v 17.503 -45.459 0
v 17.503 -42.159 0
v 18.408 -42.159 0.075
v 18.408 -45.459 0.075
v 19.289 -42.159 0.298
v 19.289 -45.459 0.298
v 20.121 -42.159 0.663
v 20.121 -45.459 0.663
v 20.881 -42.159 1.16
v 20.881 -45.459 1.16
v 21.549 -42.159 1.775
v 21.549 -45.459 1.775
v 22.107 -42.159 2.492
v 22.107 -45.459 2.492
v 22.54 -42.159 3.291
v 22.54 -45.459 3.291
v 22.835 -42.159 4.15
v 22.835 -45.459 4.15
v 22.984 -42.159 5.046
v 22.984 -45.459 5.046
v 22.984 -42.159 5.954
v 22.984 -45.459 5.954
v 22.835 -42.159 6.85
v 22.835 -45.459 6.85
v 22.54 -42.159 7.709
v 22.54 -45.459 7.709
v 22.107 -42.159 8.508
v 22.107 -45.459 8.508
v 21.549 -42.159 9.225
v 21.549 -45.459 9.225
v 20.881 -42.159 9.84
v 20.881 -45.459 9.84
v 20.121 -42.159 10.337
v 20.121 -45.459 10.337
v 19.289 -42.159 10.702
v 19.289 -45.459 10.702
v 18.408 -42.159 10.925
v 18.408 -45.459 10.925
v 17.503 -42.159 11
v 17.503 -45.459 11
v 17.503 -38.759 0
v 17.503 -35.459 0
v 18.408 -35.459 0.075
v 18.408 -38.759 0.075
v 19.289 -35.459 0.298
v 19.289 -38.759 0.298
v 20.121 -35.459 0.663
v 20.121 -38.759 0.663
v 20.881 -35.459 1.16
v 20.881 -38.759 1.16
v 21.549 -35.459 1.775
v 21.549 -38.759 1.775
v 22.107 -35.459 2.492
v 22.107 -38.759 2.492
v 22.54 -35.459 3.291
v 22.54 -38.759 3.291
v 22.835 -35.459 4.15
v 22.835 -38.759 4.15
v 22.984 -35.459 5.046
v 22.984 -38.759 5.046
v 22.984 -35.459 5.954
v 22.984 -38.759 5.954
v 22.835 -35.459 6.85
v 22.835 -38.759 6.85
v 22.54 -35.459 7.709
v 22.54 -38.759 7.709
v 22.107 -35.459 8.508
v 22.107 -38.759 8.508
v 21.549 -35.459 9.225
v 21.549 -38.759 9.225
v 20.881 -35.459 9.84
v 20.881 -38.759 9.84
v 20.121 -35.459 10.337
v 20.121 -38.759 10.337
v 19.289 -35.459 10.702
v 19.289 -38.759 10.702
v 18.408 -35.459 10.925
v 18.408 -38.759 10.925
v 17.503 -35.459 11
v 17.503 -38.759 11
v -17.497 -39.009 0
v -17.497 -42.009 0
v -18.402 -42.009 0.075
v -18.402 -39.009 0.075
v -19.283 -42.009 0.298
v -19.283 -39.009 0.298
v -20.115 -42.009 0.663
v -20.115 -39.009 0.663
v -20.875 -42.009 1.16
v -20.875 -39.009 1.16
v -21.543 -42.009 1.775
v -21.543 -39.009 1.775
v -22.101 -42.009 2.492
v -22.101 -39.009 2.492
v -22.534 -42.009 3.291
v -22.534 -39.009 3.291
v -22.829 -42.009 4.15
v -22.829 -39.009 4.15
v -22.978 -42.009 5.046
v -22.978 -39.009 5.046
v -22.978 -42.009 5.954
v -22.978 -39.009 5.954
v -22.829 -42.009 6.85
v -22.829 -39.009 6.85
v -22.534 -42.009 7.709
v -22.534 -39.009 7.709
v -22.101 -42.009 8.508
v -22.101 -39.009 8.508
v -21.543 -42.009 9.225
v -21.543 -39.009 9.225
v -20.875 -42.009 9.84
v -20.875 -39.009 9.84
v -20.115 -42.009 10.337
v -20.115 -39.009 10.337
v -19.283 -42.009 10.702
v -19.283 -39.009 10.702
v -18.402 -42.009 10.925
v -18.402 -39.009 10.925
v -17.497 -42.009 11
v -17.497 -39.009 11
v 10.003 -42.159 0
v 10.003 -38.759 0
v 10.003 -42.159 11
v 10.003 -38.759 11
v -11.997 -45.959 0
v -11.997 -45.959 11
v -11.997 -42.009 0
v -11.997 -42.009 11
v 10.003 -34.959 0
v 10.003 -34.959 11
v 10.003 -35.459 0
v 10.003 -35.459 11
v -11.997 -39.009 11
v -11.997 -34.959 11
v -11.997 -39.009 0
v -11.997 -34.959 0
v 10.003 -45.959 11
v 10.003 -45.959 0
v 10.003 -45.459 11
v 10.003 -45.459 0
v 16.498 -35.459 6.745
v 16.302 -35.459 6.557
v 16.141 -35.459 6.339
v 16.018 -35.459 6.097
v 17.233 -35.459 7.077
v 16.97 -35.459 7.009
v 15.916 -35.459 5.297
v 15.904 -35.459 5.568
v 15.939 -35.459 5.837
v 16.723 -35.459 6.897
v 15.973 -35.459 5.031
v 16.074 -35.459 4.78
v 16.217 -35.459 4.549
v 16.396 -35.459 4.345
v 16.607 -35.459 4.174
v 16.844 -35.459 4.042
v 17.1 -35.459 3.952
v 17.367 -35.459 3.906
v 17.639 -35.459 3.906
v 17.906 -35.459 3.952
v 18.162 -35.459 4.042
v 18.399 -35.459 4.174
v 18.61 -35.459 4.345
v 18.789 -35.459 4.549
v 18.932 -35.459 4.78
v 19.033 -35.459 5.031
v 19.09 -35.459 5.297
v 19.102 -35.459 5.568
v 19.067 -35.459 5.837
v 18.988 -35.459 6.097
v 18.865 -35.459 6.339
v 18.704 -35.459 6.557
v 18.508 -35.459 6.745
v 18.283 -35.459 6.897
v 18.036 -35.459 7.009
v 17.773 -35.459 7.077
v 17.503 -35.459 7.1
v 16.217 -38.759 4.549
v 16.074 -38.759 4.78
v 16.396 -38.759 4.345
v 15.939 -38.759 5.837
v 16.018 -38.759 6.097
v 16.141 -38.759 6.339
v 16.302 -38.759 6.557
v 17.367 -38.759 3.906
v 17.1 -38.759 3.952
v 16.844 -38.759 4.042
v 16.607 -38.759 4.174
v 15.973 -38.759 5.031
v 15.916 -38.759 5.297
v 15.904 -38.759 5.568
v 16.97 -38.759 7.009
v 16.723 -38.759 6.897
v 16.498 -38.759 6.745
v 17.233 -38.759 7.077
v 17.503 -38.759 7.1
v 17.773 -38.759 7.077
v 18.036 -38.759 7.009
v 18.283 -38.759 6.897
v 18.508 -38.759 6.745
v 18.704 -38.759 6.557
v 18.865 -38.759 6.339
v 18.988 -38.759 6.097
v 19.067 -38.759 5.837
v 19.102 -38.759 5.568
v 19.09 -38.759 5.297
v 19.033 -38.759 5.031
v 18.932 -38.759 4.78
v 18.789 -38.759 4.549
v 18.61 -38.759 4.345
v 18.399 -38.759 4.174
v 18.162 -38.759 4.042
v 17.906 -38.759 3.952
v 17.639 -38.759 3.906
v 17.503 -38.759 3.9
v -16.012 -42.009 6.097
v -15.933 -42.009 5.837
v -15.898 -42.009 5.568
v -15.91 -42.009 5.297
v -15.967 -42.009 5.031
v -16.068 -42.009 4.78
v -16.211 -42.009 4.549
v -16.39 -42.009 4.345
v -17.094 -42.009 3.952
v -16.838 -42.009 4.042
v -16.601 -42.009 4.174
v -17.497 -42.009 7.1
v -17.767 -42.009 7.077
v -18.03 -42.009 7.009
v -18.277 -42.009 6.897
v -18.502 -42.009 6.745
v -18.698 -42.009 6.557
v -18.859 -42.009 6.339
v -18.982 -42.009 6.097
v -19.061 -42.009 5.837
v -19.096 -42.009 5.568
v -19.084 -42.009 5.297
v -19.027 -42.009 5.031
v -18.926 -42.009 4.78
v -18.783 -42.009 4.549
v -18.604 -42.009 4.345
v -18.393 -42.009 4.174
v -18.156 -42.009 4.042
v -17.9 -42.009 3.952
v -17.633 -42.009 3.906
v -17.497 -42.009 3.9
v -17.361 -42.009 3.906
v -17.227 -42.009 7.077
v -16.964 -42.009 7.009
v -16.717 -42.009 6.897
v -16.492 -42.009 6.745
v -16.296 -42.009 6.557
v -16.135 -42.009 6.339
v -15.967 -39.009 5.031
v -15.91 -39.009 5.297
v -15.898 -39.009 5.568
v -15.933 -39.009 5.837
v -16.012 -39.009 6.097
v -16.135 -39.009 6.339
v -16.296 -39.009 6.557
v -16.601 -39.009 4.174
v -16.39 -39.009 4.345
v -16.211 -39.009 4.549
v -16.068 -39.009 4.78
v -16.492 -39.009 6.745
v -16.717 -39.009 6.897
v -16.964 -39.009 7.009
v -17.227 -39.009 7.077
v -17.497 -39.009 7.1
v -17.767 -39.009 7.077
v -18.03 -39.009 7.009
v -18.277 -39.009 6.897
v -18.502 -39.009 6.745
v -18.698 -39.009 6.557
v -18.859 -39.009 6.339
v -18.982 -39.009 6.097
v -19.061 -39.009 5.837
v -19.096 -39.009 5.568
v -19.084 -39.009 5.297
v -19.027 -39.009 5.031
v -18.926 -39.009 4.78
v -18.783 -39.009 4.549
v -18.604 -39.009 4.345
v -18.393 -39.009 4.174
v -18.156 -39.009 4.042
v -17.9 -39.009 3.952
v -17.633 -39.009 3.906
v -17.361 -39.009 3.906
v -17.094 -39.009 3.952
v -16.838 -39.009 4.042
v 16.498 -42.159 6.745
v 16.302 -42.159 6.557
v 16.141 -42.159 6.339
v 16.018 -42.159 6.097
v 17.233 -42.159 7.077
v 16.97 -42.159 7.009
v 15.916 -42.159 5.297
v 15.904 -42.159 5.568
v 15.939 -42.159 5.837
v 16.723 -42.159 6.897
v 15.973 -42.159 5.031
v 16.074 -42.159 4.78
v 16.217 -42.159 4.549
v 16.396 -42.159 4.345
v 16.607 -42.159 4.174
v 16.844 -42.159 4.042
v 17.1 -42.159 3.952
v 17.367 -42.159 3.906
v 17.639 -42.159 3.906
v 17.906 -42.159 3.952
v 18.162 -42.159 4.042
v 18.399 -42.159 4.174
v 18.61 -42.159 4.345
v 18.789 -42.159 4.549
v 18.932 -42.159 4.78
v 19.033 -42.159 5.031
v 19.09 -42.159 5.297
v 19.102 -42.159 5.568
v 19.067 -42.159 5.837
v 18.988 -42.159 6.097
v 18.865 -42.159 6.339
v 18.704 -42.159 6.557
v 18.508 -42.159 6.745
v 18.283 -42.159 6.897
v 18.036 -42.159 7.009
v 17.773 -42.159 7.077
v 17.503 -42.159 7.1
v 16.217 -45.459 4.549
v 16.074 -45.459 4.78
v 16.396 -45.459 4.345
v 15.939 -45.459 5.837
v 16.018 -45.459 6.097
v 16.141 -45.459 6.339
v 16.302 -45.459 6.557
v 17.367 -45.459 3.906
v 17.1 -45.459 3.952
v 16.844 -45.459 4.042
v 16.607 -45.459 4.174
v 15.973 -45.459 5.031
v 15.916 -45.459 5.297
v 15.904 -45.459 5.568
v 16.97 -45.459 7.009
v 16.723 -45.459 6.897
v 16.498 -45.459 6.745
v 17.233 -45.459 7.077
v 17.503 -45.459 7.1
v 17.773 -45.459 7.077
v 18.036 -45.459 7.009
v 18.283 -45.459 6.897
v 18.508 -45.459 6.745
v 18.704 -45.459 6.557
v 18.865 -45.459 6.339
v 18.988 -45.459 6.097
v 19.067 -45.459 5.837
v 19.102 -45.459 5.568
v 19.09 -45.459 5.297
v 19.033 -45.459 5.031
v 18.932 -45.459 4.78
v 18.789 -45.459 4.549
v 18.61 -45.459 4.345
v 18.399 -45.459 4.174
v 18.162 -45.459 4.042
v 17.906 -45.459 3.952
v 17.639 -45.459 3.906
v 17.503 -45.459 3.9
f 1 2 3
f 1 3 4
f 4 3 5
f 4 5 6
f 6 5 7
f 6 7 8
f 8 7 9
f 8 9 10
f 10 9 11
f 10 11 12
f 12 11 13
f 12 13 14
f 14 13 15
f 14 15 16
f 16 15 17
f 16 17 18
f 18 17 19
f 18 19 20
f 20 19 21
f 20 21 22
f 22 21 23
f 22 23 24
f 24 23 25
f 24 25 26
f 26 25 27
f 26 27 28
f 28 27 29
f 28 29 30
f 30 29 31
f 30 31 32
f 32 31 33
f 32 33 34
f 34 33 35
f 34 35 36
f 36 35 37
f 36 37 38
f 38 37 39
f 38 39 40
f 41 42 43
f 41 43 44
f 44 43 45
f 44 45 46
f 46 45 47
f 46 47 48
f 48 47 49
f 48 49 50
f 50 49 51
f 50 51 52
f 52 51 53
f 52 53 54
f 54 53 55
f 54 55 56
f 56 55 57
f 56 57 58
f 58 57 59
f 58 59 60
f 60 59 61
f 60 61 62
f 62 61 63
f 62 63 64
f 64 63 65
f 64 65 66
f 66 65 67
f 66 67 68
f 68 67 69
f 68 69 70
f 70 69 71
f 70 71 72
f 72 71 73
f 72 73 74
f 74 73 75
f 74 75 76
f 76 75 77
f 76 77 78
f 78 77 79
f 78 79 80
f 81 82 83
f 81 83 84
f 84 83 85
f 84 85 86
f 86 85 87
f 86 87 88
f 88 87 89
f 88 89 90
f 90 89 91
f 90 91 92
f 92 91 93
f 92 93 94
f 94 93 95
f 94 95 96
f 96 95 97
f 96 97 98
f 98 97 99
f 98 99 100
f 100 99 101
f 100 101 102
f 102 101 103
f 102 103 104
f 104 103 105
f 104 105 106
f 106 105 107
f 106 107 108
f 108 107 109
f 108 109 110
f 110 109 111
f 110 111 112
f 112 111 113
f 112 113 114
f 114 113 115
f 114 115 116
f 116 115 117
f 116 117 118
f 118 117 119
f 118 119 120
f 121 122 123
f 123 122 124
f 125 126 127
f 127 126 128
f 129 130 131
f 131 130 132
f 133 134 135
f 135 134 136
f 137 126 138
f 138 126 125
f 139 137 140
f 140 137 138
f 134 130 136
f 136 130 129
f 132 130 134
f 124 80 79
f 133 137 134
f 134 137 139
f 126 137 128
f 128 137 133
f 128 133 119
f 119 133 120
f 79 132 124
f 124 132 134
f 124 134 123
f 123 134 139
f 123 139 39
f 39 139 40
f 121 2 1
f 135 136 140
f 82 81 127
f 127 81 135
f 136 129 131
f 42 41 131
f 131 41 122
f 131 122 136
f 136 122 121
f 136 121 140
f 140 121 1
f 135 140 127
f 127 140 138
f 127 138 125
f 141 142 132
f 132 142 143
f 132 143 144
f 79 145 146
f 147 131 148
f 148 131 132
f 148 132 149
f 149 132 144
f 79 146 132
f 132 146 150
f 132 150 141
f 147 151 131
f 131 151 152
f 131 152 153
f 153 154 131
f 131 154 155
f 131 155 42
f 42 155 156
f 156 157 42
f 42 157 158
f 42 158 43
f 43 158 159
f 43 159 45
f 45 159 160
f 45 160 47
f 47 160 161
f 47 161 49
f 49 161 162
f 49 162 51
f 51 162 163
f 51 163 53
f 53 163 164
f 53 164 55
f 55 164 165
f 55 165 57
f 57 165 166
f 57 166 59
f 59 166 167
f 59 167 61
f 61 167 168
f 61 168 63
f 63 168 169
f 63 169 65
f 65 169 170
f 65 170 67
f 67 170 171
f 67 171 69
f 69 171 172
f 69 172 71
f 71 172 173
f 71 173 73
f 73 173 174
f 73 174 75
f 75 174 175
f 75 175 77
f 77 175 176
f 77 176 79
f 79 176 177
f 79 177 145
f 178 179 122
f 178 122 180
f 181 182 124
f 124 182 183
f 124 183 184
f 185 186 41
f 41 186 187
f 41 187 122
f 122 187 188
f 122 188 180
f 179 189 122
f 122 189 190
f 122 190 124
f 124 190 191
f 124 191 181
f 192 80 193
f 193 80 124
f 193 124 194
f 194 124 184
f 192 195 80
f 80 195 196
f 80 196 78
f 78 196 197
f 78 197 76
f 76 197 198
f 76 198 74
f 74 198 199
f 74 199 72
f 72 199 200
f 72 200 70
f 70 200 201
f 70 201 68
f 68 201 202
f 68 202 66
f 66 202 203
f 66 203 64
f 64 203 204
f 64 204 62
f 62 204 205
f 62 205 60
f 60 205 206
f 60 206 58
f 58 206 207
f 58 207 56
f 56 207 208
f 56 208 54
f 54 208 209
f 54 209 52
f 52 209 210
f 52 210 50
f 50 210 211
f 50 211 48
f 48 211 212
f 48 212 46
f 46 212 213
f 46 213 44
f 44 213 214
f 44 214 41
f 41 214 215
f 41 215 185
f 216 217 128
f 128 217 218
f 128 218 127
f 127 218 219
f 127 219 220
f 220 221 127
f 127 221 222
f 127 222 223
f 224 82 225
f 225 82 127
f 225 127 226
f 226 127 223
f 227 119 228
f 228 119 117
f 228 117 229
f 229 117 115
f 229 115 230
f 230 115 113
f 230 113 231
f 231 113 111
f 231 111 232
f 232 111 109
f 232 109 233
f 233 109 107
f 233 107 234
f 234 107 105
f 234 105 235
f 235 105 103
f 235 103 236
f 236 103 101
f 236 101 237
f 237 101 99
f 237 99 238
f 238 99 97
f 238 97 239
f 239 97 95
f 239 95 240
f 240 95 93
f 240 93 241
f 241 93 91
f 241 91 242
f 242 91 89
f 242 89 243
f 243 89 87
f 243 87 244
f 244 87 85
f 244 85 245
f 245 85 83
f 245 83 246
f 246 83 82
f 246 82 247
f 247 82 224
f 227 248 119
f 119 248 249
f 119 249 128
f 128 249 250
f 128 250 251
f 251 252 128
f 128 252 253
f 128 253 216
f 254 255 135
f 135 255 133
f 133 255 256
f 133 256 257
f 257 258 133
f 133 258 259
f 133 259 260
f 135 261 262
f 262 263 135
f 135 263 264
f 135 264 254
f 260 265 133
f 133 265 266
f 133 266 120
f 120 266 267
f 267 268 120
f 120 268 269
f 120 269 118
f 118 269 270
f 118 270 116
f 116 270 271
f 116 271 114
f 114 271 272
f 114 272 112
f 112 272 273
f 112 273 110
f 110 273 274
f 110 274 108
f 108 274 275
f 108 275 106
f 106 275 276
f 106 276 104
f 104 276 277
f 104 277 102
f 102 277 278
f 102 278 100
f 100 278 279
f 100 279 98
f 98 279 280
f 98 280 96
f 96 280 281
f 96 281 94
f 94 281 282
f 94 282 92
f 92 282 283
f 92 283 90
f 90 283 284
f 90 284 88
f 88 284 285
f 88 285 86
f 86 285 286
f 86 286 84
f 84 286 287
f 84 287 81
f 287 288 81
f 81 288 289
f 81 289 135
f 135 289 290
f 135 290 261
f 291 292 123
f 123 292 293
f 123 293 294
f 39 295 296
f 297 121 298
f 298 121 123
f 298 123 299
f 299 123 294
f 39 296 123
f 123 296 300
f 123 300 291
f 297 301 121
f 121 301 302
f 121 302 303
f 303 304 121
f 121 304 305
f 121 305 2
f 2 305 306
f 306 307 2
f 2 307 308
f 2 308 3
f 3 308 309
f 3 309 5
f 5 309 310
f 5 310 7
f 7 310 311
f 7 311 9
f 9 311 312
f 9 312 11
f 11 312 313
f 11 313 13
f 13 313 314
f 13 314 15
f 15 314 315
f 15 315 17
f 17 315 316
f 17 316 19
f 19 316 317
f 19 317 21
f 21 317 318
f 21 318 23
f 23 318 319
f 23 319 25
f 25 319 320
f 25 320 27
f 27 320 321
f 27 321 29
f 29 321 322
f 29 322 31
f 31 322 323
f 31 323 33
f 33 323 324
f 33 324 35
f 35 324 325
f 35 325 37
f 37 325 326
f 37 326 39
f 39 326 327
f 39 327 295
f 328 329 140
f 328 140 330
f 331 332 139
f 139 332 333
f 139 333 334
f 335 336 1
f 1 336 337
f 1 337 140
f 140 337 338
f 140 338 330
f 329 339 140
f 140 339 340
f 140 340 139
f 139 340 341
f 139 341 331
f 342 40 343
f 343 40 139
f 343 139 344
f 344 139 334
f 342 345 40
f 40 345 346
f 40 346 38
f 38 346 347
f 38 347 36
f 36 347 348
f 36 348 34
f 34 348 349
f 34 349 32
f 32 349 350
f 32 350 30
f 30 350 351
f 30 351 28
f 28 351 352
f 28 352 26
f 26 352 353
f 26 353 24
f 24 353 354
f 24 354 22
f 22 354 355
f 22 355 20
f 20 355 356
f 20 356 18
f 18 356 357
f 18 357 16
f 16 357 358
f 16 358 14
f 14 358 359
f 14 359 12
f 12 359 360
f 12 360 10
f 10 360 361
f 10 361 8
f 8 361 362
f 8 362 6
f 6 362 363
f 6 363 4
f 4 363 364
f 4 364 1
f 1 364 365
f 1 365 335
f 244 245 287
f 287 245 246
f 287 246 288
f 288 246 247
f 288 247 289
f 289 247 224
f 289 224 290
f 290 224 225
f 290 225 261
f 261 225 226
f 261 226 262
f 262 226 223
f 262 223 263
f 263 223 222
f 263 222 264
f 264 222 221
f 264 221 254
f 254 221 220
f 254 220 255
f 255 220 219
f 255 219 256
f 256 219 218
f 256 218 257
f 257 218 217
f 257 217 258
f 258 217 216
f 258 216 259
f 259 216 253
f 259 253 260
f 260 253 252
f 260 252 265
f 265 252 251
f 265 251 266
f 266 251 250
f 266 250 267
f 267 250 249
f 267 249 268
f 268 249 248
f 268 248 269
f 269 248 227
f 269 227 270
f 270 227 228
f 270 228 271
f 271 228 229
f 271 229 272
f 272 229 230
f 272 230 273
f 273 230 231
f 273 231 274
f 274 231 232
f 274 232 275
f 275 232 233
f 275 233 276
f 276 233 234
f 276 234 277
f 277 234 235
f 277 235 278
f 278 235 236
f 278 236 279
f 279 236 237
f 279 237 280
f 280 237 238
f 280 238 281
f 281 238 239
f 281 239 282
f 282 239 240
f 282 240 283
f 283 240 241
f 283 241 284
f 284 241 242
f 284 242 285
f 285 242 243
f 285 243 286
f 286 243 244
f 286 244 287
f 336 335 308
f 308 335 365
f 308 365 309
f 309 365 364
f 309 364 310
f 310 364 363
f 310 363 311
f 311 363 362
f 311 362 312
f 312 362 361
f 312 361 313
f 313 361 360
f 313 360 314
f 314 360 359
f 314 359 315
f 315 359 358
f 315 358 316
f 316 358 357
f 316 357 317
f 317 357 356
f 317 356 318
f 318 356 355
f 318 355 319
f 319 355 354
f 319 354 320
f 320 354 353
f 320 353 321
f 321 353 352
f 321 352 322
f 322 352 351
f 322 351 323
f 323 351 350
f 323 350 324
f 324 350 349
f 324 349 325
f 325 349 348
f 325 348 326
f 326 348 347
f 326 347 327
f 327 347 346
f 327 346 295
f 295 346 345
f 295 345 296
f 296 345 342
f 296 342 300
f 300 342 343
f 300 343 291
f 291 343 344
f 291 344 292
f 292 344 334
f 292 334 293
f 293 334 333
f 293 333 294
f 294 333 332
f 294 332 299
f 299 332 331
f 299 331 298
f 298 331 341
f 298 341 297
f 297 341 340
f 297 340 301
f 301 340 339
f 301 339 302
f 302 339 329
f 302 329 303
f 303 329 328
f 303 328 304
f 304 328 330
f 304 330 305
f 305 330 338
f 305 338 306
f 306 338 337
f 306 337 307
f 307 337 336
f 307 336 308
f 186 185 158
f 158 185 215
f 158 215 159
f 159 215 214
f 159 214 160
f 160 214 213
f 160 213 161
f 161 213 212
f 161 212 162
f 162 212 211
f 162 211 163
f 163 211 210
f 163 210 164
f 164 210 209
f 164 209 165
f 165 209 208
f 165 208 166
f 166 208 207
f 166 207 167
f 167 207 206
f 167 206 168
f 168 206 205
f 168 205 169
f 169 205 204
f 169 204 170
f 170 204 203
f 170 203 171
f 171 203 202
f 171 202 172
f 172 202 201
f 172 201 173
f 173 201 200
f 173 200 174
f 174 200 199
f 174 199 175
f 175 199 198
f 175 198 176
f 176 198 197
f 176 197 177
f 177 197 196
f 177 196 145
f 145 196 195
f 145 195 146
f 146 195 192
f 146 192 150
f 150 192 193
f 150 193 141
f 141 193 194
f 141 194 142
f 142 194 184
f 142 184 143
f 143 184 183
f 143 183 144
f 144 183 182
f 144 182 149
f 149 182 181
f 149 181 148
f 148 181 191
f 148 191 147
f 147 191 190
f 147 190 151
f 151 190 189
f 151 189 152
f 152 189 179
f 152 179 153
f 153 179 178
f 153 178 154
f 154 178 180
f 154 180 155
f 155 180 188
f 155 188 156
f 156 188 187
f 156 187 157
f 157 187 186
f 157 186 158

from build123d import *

# Parameters (mm, degrees)
CROQUIS2_W              = 22
CROQUIS2_H              = 11
SALIENTE_EXTRUIR1_DEPTH = 11
CROQUIS4_W              = 13
CROQUIS4_H              = 3.3
CROQUIS4_W_2            = 11
CROQUIS4_H_2            = 3
SALIENTE_EXTRUIR2_DEPTH = 11
REDONDEO1_RADIUS        = 5.5
REDONDEO1_LENGTH        = 3
REDONDEO2_RADIUS        = 5.5
REDONDEO2_LENGTH        = 3.3
REDONDEO3_RADIUS        = 5.5
REDONDEO3_LENGTH        = 3.3
CROQUIS7_R              = 1.6
CORTAR_EXTRUIR3_DEPTH   = 27.428025294
CROQUIS8_R              = 1.6
CORTAR_EXTRUIR4_DEPTH   = 28.575134105


with BuildPart() as part:
    # Croquis2 → Saliente-Extruir1 (new body)
    with BuildSketch(Plane.XY):
        with Locations((-0.996999741, -40.458999634)):
            Rectangle(CROQUIS2_W, CROQUIS2_H)
    extrude(amount=SALIENTE_EXTRUIR1_DEPTH)

    # Croquis4 → Saliente-Extruir2 (add)
    with BuildSketch(Plane.XY.offset(11)):
        with Locations((16.503000259, -43.808999634)):
            Rectangle(CROQUIS4_W, CROQUIS4_H)
        with Locations((-17.496999741, -40.508999634)):
            Rectangle(CROQUIS4_W_2, CROQUIS4_H_2)
        with Locations((16.503000259, -37.108999634)):
            Rectangle(CROQUIS4_W, CROQUIS4_H)
    extrude(amount=-SALIENTE_EXTRUIR2_DEPTH)

    # Redondeo1: full round fillet: the end face becomes a half cylinder, R = half its width
    redondeo1_face = Plane((-22.996999741, -40.508999634, 5.5), x_dir=(0, -1, 0), z_dir=(-1, 0, 0))  # on the end face: x along it, z out of the body
    redondeo1_slab = redondeo1_face.offset(-REDONDEO1_RADIUS / 2) * Box(REDONDEO1_LENGTH, 2 * REDONDEO1_RADIUS, REDONDEO1_RADIUS, mode=Mode.PRIVATE)  # the body's end, R deep
    redondeo1_round = Plane((-17.496999741, -40.508999634, 5.5), x_dir=(-1, 0, 0), z_dir=(0, -1, 0)) * Cylinder(REDONDEO1_RADIUS, REDONDEO1_LENGTH, mode=Mode.PRIVATE)  # its axis R under the face
    add(redondeo1_slab - redondeo1_round, mode=Mode.SUBTRACT)

    # Redondeo2: full round fillet: the end face becomes a half cylinder, R = half its width
    redondeo2_face = Plane((23.003000259, -37.108999634, 5.5), x_dir=(0, 1, 0), z_dir=(1, 0, 0))  # on the end face: x along it, z out of the body
    redondeo2_slab = redondeo2_face.offset(-REDONDEO2_RADIUS / 2) * Box(REDONDEO2_LENGTH, 2 * REDONDEO2_RADIUS, REDONDEO2_RADIUS, mode=Mode.PRIVATE)  # the body's end, R deep
    redondeo2_round = Plane((17.503000259, -37.108999634, 5.5), x_dir=(1, 0, 0), z_dir=(0, 1, 0)) * Cylinder(REDONDEO2_RADIUS, REDONDEO2_LENGTH, mode=Mode.PRIVATE)  # its axis R under the face
    add(redondeo2_slab - redondeo2_round, mode=Mode.SUBTRACT)

    # Redondeo3: full round fillet: the end face becomes a half cylinder, R = half its width
    redondeo3_face = Plane((23.003000259, -43.808999634, 5.5), x_dir=(0, 1, 0), z_dir=(1, 0, 0))  # on the end face: x along it, z out of the body
    redondeo3_slab = redondeo3_face.offset(-REDONDEO3_RADIUS / 2) * Box(REDONDEO3_LENGTH, 2 * REDONDEO3_RADIUS, REDONDEO3_RADIUS, mode=Mode.PRIVATE)  # the body's end, R deep
    redondeo3_round = Plane((17.503000259, -43.808999634, 5.5), x_dir=(1, 0, 0), z_dir=(0, 1, 0)) * Cylinder(REDONDEO3_RADIUS, REDONDEO3_LENGTH, mode=Mode.PRIVATE)  # its axis R under the face
    add(redondeo3_slab - redondeo3_round, mode=Mode.SUBTRACT)

    # Croquis7 → Cortar-Extruir3 (cut, through all)
    with BuildSketch(Plane(origin=(0, -39.008999634, 0), x_dir=(1, 0, 0), z_dir=(0, 1, 0))):
        with Locations(Location((-17.496999741, -5.5, 0), (0, 0, 270))):
            Circle(CROQUIS7_R)
    extrude(amount=-CORTAR_EXTRUIR3_DEPTH, mode=Mode.SUBTRACT)

    # Croquis8 → Cortar-Extruir4 (cut, through all)
    with BuildSketch(Plane(origin=(0, -35.458999634, 0), x_dir=(1, 0, 0), z_dir=(0, 1, 0))):
        with Locations(Location((17.503000259, -5.5, 0), (0, 0, 270))):
            Circle(CROQUIS8_R)
    extrude(amount=-CORTAR_EXTRUIR4_DEPTH, mode=Mode.SUBTRACT)


solid = part.part
